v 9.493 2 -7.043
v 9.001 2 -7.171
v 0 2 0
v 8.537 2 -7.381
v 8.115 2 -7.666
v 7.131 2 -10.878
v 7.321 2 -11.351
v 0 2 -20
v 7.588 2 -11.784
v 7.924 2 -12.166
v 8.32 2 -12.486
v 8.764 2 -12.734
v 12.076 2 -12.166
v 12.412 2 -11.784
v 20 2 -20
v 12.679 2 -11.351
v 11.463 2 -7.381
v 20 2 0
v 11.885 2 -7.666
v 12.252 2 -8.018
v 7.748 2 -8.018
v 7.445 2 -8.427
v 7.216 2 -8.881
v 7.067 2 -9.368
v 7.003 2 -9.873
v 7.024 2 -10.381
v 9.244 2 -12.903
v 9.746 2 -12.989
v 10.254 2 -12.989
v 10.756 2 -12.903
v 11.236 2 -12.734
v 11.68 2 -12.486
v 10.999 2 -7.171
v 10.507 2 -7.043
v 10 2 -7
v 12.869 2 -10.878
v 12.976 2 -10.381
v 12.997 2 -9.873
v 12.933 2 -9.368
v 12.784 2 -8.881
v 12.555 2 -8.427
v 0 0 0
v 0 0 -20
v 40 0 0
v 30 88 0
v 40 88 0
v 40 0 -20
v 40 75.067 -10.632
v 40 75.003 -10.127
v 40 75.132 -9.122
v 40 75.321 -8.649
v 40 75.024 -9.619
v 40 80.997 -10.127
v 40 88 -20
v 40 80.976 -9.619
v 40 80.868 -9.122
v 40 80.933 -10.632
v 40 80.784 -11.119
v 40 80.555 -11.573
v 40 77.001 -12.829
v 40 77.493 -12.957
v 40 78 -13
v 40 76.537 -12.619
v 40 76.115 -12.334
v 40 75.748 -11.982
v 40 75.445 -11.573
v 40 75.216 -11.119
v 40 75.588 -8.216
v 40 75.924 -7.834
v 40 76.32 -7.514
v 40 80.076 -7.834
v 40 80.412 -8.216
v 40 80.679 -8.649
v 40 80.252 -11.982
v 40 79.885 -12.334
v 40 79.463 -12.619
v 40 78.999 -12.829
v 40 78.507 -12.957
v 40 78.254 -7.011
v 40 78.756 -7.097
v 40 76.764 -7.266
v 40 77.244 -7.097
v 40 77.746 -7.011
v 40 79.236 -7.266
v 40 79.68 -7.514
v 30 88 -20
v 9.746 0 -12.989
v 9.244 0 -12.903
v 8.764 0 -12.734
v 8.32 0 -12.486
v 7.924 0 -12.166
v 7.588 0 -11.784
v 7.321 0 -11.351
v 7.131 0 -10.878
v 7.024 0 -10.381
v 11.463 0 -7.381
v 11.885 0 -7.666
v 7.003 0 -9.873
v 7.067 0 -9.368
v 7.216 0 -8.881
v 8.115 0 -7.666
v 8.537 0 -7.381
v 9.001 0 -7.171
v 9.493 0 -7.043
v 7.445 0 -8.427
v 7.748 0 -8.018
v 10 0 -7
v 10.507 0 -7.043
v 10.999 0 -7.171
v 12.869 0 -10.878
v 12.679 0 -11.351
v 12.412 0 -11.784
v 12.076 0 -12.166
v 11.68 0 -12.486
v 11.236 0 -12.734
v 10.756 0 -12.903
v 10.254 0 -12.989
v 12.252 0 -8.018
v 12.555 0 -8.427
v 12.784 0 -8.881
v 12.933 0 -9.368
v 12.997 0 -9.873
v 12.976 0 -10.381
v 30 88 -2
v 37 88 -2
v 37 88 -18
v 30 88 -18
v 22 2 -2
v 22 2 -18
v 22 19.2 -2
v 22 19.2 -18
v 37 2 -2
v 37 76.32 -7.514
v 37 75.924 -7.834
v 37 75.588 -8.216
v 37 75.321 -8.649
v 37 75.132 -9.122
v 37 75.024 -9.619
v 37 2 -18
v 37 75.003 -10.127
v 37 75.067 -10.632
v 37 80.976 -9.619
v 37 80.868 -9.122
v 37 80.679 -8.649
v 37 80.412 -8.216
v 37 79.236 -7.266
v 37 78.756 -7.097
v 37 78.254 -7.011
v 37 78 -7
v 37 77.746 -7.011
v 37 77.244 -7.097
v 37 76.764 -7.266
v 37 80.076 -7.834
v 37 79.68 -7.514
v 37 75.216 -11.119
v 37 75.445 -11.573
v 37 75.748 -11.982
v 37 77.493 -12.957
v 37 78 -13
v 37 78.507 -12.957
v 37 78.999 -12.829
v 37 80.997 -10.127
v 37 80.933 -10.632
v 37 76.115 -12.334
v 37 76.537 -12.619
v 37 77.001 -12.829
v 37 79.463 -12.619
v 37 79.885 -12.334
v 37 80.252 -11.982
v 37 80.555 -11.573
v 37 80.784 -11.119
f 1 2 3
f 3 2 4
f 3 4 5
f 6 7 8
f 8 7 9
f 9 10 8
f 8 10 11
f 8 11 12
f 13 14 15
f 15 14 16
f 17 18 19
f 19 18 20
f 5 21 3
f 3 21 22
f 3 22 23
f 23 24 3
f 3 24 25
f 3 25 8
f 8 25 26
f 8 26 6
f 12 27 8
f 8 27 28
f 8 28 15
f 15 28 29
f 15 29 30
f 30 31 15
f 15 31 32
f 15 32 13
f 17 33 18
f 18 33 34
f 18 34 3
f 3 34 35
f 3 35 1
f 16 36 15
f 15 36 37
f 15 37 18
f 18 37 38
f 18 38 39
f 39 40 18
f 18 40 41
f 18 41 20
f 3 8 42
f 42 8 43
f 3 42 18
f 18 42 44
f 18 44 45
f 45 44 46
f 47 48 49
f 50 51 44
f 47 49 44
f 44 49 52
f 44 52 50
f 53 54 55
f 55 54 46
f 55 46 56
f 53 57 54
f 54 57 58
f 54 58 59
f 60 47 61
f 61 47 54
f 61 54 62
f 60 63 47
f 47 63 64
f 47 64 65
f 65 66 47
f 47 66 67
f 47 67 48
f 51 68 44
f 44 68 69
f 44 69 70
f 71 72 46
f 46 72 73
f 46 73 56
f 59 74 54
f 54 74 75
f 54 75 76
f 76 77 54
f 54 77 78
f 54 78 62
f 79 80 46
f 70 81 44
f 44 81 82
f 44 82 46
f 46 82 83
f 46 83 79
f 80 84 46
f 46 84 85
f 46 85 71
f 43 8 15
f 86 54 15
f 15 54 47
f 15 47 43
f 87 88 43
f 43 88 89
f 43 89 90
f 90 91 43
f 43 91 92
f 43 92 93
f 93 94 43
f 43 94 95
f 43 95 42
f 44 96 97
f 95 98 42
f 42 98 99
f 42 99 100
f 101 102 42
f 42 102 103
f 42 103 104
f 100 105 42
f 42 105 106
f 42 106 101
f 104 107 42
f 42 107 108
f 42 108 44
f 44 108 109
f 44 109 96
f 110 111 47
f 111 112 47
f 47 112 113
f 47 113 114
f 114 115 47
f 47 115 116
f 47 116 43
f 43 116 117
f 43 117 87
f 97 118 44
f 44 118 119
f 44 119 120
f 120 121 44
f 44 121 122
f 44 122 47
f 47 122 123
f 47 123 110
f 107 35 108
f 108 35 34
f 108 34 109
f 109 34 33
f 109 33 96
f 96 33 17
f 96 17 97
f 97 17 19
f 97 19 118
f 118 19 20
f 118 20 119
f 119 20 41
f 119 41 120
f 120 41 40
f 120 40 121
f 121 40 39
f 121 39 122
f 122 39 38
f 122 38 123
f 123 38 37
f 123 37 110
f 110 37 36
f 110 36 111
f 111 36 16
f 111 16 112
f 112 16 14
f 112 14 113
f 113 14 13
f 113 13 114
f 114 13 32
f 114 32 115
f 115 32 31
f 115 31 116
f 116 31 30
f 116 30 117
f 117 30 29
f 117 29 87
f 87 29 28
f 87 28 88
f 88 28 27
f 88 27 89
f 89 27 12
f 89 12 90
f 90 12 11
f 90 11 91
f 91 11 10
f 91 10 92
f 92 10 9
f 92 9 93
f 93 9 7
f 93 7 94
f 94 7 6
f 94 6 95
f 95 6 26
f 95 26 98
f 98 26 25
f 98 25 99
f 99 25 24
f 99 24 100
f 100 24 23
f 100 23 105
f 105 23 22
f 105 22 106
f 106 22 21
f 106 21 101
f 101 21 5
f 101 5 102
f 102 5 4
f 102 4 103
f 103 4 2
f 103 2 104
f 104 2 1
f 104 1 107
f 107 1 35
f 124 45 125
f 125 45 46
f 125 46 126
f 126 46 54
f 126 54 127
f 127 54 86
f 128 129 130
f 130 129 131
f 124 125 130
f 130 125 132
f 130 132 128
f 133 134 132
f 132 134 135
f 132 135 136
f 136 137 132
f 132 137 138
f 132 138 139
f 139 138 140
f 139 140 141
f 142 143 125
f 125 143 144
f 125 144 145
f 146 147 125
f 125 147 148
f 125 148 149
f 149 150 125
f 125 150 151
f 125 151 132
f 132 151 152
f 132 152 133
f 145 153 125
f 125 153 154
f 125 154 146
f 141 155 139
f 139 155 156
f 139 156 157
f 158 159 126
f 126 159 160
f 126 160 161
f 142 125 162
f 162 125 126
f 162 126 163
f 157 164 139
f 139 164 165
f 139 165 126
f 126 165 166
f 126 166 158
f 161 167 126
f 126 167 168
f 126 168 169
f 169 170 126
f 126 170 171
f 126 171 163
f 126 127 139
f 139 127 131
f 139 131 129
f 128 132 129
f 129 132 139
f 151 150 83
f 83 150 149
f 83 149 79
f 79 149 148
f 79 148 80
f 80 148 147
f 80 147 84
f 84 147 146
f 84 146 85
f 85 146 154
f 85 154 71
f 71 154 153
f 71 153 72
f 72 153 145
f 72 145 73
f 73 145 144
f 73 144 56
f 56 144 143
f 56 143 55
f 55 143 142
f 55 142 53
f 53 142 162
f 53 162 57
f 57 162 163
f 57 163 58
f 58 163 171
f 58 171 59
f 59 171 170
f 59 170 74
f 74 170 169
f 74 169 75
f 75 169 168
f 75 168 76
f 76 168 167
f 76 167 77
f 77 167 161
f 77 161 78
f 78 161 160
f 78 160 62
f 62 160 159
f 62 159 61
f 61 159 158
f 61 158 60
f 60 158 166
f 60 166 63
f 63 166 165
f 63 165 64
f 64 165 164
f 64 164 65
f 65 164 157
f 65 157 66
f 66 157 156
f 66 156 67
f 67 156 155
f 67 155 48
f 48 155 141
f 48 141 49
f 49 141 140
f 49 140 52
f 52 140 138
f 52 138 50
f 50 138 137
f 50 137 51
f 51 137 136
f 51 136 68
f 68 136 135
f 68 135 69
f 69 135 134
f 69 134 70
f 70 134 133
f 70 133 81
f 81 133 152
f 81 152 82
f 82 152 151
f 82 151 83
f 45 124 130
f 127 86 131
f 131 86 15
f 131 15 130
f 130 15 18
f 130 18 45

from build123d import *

# Parameters (mm, degrees)
SKETCH1_W           = 40
SKETCH1_H           = 20
BOSS_EXTRUDE1_DEPTH = 2
SKETCH2_R           = 3
CUT_EXTRUDE1_DEPTH  = 2
SKETCH3_W           = 20
SKETCH3_H           = 20
SKETCH3_W_2         = 15
SKETCH3_H_2         = 16
BOSS_EXTRUDE2_DEPTH = 86
SKETCH4_R           = 3
CUT_EXTRUDE2_DEPTH  = 86
CUT_EXTRUDE3_DEPTH  = 86


with BuildPart() as part:
    # Sketch1 → Boss-Extrude1 (new body)
    with BuildSketch(Plane(origin=(0, 0, 0), x_dir=(1, 0, 0), z_dir=(0, 1, 0))):
        with Locations((20, 10)):
            Rectangle(SKETCH1_W, SKETCH1_H)
    extrude(amount=BOSS_EXTRUDE1_DEPTH)

    # Sketch2 → Cut-Extrude1 (cut)
    with BuildSketch(Plane(origin=(0, 2, 0), x_dir=(1, 0, 0), z_dir=(0, 1, 0))):
        with Locations(Location((10, 10, 0), (0, 0, 270))):
            Circle(SKETCH2_R)
    extrude(amount=-CUT_EXTRUDE1_DEPTH, mode=Mode.SUBTRACT)

    # Sketch3 → Boss-Extrude2 (add)
    with BuildSketch(Plane(origin=(0, 2, 0), x_dir=(1, 0, 0), z_dir=(0, 1, 0))):
        with Locations((30, 10)):
            Rectangle(SKETCH3_W, SKETCH3_H)
        with Locations((29.5, 10)):
            Rectangle(SKETCH3_W_2, SKETCH3_H_2, mode=Mode.SUBTRACT)
    extrude(amount=BOSS_EXTRUDE2_DEPTH)

    # Sketch4 → Cut-Extrude2 (cut)
    with BuildSketch(Plane(origin=(40, 0, 0), x_dir=(0, 0, -1), z_dir=(1, 0, 0))):
        with Locations((10, 78)):
            Circle(SKETCH4_R)
    extrude(amount=-CUT_EXTRUDE2_DEPTH, mode=Mode.SUBTRACT)

    # Sketch5 → Cut-Extrude3 (cut)
    with BuildSketch(Plane.XY):
        Polygon((30, 88), (20, 2), (20, 88), align=None)
    extrude(amount=-CUT_EXTRUDE3_DEPTH, mode=Mode.SUBTRACT)


solid = part.part
